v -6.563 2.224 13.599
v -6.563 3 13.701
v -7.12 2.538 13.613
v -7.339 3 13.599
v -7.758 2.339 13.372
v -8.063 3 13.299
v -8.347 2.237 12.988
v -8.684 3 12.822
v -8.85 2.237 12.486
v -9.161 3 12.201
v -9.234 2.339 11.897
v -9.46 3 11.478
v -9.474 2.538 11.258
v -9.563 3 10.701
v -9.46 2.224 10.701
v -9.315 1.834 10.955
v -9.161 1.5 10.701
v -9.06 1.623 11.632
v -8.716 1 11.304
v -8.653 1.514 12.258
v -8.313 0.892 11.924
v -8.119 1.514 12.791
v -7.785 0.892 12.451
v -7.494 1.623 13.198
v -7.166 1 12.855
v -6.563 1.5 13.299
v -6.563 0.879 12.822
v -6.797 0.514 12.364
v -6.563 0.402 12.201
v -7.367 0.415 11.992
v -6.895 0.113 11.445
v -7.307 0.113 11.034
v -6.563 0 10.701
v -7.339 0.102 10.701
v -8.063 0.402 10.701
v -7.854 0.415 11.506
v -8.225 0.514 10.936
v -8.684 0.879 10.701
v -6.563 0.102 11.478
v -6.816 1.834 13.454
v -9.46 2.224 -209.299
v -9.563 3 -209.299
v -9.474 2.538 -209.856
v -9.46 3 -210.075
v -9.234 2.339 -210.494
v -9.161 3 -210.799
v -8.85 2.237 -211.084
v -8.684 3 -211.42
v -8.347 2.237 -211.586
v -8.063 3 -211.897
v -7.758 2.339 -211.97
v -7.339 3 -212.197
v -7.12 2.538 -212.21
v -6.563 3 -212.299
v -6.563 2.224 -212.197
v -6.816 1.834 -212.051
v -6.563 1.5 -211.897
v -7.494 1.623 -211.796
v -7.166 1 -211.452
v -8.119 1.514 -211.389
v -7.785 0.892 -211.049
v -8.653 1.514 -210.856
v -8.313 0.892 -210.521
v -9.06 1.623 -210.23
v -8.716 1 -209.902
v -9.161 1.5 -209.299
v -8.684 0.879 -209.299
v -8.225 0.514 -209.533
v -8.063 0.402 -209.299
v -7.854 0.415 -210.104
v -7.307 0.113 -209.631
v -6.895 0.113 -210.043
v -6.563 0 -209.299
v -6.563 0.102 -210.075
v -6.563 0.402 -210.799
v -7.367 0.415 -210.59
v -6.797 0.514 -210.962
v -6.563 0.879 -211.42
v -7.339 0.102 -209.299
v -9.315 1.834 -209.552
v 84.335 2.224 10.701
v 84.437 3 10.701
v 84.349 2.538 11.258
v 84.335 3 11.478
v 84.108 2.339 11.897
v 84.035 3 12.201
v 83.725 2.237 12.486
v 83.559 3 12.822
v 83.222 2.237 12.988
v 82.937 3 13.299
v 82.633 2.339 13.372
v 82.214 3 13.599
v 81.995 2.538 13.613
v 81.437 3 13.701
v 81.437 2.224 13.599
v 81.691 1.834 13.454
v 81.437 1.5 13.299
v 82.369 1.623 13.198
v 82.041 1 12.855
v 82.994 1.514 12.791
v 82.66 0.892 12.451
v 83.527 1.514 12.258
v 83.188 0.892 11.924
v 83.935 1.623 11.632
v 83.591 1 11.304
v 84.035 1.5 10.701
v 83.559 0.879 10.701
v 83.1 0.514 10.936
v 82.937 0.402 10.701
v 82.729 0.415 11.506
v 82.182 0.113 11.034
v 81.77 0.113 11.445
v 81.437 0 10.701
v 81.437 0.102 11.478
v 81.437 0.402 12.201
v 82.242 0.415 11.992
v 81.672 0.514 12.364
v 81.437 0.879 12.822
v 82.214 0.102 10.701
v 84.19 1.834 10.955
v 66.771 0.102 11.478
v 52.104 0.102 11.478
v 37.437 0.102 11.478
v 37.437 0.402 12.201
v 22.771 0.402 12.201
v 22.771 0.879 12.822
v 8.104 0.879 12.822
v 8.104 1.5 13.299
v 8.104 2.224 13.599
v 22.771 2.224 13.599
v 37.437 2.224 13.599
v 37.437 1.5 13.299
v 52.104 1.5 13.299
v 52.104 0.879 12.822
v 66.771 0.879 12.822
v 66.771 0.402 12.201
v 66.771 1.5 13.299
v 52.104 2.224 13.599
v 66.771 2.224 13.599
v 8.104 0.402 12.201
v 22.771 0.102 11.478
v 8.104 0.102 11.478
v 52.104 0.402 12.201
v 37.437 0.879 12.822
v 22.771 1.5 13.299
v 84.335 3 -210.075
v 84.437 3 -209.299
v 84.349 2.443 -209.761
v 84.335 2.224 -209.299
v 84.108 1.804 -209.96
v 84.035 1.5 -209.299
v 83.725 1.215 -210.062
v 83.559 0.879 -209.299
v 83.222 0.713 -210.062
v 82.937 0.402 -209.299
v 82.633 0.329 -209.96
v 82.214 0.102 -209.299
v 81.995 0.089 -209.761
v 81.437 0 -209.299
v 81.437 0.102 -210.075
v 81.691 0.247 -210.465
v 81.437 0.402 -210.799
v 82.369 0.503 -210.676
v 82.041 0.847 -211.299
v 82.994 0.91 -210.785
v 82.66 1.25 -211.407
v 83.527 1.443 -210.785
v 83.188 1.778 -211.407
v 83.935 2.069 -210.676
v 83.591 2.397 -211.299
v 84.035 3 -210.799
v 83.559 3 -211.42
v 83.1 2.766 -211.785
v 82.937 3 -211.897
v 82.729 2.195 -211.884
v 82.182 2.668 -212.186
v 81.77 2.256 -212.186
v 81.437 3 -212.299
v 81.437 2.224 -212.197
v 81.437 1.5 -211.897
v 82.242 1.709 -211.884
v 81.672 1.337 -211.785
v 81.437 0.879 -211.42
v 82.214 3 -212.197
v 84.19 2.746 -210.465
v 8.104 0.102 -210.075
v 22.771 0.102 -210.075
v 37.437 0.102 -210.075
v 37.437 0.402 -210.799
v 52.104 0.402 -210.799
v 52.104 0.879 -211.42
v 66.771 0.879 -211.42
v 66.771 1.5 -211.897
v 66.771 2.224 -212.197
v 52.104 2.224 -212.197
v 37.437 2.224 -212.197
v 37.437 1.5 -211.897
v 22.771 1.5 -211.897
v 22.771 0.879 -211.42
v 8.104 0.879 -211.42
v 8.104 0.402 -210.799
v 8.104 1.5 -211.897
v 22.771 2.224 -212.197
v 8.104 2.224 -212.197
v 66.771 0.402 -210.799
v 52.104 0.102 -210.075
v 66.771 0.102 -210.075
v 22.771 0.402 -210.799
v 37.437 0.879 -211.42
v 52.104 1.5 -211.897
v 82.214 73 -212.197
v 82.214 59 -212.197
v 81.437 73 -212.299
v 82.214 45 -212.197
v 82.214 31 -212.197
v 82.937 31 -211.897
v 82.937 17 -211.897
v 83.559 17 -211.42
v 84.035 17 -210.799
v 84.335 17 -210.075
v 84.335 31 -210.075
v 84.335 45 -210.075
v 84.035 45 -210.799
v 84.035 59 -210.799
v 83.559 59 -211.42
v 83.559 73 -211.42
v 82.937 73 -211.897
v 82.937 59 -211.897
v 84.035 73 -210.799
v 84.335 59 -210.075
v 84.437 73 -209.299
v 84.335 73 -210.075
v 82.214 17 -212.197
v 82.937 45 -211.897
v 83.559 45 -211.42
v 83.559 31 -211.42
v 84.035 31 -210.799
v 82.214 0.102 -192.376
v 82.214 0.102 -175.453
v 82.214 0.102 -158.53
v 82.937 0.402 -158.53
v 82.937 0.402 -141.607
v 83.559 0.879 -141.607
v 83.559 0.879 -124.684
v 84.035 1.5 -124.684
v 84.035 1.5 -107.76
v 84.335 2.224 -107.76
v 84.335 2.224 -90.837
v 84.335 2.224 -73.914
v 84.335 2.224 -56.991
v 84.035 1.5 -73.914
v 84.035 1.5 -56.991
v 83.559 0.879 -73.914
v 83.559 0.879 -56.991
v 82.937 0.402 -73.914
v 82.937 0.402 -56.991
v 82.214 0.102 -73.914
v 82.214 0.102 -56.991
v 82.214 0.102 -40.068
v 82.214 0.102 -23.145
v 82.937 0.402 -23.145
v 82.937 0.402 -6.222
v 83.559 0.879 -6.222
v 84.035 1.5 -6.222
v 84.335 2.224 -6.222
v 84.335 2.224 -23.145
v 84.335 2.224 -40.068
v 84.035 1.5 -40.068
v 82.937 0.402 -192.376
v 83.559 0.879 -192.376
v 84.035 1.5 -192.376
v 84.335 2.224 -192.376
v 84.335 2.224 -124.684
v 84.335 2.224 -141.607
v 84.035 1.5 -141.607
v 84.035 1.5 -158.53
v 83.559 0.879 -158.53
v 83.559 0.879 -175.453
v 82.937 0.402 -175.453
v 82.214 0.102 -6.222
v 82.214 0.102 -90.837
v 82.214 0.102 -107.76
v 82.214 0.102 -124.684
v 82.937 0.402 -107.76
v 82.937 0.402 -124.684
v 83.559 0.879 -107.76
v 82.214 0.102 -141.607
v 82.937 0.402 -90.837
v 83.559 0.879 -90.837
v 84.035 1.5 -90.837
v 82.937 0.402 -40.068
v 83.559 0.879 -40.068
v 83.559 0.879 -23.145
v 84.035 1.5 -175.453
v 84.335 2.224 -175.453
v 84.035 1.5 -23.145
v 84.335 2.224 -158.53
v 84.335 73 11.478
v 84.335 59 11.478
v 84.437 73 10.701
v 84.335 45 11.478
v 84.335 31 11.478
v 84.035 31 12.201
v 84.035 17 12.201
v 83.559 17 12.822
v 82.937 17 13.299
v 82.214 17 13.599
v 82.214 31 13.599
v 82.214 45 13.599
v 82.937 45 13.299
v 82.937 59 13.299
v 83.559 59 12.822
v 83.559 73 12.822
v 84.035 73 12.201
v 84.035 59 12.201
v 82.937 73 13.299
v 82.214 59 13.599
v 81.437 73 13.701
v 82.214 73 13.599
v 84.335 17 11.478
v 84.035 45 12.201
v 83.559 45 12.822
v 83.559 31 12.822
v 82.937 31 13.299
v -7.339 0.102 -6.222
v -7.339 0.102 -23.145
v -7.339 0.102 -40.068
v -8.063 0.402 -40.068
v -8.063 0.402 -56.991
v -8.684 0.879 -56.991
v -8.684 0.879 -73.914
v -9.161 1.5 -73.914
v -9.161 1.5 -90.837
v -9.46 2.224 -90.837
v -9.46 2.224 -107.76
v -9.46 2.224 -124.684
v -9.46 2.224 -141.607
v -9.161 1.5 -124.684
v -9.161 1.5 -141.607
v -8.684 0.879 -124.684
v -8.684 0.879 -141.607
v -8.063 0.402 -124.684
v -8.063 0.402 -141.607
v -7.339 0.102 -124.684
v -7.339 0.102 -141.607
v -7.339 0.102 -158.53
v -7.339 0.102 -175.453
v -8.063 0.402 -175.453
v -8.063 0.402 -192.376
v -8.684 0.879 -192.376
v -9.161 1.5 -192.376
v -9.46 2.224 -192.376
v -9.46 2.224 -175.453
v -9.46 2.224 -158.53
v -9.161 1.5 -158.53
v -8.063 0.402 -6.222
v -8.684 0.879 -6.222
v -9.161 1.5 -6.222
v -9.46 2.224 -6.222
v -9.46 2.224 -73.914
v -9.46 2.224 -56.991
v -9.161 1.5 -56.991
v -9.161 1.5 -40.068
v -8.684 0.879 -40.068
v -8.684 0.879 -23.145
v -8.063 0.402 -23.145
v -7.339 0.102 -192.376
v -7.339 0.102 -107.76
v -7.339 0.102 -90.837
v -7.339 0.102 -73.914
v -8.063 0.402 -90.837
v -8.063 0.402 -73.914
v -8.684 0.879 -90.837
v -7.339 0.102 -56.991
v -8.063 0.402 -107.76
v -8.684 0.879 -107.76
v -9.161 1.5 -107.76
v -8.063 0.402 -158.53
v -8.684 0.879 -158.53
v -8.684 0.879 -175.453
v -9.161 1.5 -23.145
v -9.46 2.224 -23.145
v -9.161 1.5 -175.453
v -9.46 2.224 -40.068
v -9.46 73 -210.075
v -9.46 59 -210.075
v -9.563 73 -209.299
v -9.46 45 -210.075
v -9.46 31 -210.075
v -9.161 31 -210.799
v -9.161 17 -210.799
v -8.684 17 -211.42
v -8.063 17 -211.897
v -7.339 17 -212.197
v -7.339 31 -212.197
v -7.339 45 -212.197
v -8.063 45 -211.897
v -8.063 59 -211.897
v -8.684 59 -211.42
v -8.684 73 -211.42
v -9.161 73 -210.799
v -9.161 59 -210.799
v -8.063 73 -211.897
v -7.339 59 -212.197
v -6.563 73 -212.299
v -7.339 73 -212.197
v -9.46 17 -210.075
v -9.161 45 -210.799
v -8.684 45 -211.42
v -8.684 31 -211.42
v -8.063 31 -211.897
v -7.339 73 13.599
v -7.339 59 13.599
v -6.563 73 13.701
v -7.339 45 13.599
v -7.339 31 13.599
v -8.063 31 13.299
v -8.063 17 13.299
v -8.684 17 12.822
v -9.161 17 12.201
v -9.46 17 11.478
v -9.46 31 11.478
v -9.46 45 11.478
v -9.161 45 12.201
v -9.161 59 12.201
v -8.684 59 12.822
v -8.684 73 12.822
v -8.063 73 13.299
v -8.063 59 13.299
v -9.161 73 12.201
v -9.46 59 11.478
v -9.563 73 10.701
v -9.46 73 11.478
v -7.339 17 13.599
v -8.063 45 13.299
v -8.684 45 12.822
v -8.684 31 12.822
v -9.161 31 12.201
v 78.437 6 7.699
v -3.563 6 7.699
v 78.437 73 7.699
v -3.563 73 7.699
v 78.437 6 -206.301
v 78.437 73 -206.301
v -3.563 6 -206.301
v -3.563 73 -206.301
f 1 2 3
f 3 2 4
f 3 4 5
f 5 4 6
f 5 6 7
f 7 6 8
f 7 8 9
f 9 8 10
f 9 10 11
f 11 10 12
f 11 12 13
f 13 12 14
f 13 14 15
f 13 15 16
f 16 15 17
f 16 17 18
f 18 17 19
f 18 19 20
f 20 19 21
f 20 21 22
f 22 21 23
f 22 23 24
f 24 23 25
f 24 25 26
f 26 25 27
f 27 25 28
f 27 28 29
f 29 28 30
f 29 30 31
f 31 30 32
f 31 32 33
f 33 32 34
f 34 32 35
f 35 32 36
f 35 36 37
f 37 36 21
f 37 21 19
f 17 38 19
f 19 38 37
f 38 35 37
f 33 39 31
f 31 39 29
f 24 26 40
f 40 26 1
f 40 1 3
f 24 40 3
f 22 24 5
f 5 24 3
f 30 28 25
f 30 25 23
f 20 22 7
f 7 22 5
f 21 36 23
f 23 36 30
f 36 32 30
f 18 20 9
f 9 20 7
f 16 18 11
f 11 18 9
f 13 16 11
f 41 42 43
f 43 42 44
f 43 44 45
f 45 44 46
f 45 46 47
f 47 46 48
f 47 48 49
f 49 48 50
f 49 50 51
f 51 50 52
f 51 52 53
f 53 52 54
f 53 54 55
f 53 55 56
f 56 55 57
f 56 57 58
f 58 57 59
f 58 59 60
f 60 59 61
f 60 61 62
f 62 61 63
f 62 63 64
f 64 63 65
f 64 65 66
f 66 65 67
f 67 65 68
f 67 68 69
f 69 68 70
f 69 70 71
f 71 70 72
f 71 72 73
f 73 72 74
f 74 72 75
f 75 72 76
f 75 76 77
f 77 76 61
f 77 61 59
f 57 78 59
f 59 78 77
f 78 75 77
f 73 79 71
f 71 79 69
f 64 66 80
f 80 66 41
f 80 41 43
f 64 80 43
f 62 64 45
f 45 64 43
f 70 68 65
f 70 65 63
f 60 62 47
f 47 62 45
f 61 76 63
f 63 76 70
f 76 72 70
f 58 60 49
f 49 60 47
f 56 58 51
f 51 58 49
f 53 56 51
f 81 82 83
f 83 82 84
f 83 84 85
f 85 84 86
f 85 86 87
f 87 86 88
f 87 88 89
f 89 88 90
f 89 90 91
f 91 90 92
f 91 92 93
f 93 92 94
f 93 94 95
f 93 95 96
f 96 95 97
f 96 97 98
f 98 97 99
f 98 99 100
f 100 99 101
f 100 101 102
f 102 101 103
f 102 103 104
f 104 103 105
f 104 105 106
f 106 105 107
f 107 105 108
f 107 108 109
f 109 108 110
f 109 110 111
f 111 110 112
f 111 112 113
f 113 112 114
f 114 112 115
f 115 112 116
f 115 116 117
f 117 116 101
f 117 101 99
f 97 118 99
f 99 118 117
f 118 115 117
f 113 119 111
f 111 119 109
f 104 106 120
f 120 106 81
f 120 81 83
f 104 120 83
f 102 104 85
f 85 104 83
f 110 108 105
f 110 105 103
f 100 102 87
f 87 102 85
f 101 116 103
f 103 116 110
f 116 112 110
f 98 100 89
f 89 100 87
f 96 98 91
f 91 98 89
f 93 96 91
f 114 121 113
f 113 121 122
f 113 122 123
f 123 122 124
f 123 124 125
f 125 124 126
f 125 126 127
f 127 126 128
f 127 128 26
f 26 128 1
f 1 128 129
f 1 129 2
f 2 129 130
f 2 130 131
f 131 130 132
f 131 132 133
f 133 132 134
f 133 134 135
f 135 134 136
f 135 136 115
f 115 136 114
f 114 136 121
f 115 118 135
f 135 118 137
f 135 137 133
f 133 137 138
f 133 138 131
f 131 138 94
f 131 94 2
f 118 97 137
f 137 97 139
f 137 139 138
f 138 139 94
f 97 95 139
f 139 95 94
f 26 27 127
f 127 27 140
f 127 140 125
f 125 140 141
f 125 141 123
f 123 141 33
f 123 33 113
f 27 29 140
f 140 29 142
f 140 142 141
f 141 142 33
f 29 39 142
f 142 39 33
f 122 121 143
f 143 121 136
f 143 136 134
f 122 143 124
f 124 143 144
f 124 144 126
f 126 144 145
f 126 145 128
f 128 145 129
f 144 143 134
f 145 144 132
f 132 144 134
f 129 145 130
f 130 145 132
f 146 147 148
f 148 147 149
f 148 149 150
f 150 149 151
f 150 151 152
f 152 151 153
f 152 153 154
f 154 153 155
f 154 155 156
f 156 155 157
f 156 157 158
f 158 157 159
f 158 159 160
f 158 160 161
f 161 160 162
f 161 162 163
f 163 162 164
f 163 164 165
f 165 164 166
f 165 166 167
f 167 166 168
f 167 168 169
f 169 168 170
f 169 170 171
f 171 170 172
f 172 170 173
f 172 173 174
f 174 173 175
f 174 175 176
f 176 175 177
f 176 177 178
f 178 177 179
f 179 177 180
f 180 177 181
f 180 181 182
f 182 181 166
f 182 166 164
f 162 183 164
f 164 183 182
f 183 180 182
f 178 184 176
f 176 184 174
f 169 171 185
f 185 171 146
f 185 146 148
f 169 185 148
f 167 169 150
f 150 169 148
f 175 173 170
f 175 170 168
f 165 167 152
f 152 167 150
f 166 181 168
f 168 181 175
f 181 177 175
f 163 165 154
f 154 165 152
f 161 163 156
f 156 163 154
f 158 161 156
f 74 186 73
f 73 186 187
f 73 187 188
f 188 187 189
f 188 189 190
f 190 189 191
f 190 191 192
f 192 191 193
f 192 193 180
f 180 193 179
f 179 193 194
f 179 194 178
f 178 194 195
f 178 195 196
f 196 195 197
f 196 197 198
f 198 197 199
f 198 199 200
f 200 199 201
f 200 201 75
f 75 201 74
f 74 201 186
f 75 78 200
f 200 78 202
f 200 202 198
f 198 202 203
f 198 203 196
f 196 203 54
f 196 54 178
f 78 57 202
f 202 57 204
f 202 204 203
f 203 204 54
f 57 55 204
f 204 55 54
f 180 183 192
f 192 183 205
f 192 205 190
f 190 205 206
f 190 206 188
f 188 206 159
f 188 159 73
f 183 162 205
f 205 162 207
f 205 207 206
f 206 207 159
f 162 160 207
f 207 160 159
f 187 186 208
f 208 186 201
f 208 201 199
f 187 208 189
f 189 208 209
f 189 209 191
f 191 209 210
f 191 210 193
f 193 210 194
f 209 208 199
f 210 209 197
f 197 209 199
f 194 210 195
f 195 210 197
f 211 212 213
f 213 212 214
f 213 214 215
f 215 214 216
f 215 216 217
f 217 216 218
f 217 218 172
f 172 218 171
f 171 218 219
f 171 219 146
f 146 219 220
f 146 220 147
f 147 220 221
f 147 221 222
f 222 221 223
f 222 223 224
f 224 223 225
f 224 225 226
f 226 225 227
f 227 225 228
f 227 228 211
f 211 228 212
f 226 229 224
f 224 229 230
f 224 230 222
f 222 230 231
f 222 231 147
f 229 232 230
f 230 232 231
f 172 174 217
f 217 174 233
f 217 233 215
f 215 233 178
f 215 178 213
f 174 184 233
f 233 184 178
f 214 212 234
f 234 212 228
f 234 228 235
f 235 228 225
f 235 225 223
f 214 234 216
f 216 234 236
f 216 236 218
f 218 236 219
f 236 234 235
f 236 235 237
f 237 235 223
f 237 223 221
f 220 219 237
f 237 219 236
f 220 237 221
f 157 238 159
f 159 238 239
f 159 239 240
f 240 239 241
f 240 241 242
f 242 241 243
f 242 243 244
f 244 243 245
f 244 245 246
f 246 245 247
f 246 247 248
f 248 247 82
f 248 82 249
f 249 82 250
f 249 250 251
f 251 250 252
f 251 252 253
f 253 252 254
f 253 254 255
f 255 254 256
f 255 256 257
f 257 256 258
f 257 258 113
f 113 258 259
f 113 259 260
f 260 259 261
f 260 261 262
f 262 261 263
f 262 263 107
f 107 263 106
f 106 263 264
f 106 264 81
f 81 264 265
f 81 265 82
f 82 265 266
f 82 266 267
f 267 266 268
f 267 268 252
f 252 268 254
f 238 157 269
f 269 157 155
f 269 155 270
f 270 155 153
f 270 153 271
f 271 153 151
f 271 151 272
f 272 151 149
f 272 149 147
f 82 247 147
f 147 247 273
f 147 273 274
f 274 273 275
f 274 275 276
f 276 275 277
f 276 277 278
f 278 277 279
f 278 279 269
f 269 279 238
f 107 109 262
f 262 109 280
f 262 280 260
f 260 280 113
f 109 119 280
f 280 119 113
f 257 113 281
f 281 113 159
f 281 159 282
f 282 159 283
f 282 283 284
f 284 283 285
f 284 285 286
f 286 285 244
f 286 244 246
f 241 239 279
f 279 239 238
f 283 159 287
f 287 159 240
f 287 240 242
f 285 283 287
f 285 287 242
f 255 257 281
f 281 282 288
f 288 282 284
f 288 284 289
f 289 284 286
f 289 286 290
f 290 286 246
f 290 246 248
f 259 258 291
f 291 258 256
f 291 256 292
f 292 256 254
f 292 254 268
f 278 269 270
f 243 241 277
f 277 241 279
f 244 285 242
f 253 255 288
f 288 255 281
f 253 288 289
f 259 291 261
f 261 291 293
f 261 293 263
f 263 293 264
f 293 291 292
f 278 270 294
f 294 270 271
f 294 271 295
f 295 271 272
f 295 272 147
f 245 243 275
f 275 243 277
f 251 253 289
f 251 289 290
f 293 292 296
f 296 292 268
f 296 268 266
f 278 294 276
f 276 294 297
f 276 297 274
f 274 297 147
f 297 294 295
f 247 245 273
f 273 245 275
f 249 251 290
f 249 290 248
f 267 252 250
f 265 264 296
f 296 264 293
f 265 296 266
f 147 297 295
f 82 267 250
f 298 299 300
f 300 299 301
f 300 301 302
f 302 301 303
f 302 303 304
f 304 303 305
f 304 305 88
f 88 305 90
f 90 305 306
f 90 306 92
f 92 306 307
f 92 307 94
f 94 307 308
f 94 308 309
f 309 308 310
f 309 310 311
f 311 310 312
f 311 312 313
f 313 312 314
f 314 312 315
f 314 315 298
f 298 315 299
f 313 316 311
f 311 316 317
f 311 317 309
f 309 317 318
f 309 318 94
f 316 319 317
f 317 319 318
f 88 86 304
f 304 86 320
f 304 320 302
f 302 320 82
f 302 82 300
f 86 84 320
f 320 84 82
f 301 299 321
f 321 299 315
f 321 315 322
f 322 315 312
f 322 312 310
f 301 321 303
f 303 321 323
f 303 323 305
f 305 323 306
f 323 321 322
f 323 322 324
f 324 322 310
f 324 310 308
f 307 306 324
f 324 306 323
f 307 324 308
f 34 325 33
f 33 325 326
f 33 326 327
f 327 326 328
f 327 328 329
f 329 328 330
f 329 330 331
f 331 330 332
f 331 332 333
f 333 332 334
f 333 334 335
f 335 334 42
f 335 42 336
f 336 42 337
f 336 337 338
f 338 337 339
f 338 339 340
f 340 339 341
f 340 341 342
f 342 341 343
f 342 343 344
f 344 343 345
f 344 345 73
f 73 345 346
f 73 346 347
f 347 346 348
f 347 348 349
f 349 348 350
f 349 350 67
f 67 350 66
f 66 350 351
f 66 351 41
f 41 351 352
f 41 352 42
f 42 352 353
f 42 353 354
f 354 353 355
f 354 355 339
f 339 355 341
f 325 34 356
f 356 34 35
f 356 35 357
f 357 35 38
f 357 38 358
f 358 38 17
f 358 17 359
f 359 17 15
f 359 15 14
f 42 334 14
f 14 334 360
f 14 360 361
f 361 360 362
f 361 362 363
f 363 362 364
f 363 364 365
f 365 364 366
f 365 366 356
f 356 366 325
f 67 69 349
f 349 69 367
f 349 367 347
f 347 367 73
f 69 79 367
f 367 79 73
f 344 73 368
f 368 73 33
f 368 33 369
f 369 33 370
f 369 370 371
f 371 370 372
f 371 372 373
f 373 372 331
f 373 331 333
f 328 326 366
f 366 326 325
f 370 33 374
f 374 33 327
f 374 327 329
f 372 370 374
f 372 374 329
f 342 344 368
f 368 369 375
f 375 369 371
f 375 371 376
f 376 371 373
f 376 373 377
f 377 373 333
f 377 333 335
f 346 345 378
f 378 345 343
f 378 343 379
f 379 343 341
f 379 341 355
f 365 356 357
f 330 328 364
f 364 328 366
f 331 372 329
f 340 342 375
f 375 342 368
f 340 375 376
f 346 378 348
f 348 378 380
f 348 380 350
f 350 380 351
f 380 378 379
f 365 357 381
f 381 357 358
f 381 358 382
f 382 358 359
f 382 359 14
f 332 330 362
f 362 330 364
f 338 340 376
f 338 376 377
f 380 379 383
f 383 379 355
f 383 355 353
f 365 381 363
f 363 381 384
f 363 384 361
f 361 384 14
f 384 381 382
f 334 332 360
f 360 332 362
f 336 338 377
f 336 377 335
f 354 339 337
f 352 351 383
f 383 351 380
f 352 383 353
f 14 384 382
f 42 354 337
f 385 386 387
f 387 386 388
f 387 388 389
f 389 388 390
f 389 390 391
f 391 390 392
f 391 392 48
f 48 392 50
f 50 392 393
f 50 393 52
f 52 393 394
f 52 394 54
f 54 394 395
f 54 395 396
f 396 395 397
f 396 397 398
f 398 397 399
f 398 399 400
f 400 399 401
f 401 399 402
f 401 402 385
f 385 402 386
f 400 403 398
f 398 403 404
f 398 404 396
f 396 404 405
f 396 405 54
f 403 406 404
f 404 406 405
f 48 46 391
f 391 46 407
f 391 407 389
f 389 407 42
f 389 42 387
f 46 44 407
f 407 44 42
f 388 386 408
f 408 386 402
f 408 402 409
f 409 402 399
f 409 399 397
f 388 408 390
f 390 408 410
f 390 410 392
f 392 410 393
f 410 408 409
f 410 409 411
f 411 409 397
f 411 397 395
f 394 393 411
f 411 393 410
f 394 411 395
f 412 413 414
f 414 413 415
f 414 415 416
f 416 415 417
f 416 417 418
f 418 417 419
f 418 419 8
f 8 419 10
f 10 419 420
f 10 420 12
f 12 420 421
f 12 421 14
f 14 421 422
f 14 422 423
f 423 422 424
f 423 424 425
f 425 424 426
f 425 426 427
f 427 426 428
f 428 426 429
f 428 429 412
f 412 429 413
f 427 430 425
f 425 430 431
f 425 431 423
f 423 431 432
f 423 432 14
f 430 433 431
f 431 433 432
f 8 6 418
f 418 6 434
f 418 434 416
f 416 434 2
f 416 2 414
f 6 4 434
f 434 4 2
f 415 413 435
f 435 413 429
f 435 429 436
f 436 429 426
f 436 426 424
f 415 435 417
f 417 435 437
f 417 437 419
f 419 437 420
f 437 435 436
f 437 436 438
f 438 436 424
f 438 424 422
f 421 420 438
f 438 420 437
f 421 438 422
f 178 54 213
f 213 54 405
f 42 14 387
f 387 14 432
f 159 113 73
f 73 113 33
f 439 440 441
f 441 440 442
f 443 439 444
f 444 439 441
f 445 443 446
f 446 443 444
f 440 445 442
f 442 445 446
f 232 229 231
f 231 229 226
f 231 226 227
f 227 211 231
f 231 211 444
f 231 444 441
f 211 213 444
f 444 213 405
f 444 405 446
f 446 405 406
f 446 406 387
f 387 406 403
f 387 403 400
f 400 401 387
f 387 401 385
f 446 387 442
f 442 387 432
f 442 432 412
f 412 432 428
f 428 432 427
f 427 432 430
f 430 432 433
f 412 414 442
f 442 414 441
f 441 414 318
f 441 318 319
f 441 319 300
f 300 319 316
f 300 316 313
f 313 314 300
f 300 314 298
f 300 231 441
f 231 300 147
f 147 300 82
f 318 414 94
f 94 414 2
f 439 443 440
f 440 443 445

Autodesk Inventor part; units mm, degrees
ref_plane "YZ Plane" through (0, 0, 0) normal (1, 0, 0) x (0, 1, 0)
ref_plane "XZ Plane" through (0, 0, 0) normal (0, 1, 0) x (-1, 0, 0)
ref_plane "XY Plane" through (0, 0, 0) normal (0, 0, 1) x (1, 0, 0)
sketch "Sketch3" plane through (0, 0, 0) normal (0, 1, 0) x (-1, 0, 0)
  line L0 (3.5626, 7.7011) -> (-78.4374, 7.7011)
  line L1 (-78.4374, -212.2989) -> (3.5626, -212.2989)
  line L2 (-84.4374, 13.7011) -> (9.5626, 13.7011)
  line L3 (9.5626, -212.2989) -> (3.5626, -212.2989)
  line L4 (-84.4374, -212.2989) -> (-78.4374, -212.2989)
  line L5 (-61.601, -206.2989) -> (-78.4374, -206.2989)
  line L6 (3.5626, -206.2989) -> (-61.601, -206.2989)
  line L7 (-84.4374, 13.7011) -> (-84.4374, -212.2989)
  line L8 (9.5626, 13.7011) -> (9.5626, -212.2989)
  line L9 (3.5626, -206.2989) -> (3.5626, 7.7011)
  line L10 (-78.4374, 7.7011) -> (-78.4374, -206.2989)
  point P0 (0, 0)
  dimension "d0" = 82
  dimension "d1" = 220
extrude "Extrusion1" add sketch "Sketch3" along normal blind 6 contours L9 L6 L5 L10 L0 | L4 L7 L2 L8 L3 L1
sketch "Sketch4" plane through (0, 6, 0) normal (0, 1, 0) x (1, 0, 0)
  line L0 (-9.5626, 212.2989) -> (-9.5626, -13.7011) projected
  line L1 (-9.5626, -13.7011) -> (-3.5626, -13.7011)
  line L2 (-9.5626, -13.7011) -> (84.4374, -13.7011) projected
  line L3 (-3.5626, -13.7011) -> (-3.5626, -7.6991)
  line L4 (-3.5626, -7.6991) -> (78.4374, -7.6991)
  line L5 (78.4374, -7.6991) -> (78.4374, 206.3009)
  line L6 (78.4374, 206.3009) -> (-3.5626, 206.3009)
  line L7 (-3.5626, 206.3009) -> (-3.5626, -7.6991)
  line L8 (84.4374, 212.2989) -> (-9.5626, 212.2989) projected
  line L9 (-9.5626, -13.7011) -> (84.4374, -13.7011)
  line L10 (84.4374, -13.7011) -> (84.4374, 212.2989)
  line L11 (84.4374, 212.2989) -> (-9.5626, 212.2989)
  line L12 (-9.5626, 212.2989) -> (-9.5626, -13.7011)
  point P0 (0, 0)
  dimension "d9" = 6
  dimension "d10" = 82
  dimension "d11" = 214
extrude "Extrusion2" add sketch "Sketch4" along normal blind 67
fillet "Fillet1" radius 3 8 edges at (84.4374, 36.5, -212.2989) (-9.5626, 36.5, -212.2989) (-9.5626, 36.5, 13.7011) (84.4374, 36.5, 13.7011) (37.4374, 0, 13.7011) (84.4374, 0, -99.2989) (-9.5626, 0, -99.2989) (37.4374, 0, -212.2989)
properties part number "Battery Box Bottom_3DPrint"
